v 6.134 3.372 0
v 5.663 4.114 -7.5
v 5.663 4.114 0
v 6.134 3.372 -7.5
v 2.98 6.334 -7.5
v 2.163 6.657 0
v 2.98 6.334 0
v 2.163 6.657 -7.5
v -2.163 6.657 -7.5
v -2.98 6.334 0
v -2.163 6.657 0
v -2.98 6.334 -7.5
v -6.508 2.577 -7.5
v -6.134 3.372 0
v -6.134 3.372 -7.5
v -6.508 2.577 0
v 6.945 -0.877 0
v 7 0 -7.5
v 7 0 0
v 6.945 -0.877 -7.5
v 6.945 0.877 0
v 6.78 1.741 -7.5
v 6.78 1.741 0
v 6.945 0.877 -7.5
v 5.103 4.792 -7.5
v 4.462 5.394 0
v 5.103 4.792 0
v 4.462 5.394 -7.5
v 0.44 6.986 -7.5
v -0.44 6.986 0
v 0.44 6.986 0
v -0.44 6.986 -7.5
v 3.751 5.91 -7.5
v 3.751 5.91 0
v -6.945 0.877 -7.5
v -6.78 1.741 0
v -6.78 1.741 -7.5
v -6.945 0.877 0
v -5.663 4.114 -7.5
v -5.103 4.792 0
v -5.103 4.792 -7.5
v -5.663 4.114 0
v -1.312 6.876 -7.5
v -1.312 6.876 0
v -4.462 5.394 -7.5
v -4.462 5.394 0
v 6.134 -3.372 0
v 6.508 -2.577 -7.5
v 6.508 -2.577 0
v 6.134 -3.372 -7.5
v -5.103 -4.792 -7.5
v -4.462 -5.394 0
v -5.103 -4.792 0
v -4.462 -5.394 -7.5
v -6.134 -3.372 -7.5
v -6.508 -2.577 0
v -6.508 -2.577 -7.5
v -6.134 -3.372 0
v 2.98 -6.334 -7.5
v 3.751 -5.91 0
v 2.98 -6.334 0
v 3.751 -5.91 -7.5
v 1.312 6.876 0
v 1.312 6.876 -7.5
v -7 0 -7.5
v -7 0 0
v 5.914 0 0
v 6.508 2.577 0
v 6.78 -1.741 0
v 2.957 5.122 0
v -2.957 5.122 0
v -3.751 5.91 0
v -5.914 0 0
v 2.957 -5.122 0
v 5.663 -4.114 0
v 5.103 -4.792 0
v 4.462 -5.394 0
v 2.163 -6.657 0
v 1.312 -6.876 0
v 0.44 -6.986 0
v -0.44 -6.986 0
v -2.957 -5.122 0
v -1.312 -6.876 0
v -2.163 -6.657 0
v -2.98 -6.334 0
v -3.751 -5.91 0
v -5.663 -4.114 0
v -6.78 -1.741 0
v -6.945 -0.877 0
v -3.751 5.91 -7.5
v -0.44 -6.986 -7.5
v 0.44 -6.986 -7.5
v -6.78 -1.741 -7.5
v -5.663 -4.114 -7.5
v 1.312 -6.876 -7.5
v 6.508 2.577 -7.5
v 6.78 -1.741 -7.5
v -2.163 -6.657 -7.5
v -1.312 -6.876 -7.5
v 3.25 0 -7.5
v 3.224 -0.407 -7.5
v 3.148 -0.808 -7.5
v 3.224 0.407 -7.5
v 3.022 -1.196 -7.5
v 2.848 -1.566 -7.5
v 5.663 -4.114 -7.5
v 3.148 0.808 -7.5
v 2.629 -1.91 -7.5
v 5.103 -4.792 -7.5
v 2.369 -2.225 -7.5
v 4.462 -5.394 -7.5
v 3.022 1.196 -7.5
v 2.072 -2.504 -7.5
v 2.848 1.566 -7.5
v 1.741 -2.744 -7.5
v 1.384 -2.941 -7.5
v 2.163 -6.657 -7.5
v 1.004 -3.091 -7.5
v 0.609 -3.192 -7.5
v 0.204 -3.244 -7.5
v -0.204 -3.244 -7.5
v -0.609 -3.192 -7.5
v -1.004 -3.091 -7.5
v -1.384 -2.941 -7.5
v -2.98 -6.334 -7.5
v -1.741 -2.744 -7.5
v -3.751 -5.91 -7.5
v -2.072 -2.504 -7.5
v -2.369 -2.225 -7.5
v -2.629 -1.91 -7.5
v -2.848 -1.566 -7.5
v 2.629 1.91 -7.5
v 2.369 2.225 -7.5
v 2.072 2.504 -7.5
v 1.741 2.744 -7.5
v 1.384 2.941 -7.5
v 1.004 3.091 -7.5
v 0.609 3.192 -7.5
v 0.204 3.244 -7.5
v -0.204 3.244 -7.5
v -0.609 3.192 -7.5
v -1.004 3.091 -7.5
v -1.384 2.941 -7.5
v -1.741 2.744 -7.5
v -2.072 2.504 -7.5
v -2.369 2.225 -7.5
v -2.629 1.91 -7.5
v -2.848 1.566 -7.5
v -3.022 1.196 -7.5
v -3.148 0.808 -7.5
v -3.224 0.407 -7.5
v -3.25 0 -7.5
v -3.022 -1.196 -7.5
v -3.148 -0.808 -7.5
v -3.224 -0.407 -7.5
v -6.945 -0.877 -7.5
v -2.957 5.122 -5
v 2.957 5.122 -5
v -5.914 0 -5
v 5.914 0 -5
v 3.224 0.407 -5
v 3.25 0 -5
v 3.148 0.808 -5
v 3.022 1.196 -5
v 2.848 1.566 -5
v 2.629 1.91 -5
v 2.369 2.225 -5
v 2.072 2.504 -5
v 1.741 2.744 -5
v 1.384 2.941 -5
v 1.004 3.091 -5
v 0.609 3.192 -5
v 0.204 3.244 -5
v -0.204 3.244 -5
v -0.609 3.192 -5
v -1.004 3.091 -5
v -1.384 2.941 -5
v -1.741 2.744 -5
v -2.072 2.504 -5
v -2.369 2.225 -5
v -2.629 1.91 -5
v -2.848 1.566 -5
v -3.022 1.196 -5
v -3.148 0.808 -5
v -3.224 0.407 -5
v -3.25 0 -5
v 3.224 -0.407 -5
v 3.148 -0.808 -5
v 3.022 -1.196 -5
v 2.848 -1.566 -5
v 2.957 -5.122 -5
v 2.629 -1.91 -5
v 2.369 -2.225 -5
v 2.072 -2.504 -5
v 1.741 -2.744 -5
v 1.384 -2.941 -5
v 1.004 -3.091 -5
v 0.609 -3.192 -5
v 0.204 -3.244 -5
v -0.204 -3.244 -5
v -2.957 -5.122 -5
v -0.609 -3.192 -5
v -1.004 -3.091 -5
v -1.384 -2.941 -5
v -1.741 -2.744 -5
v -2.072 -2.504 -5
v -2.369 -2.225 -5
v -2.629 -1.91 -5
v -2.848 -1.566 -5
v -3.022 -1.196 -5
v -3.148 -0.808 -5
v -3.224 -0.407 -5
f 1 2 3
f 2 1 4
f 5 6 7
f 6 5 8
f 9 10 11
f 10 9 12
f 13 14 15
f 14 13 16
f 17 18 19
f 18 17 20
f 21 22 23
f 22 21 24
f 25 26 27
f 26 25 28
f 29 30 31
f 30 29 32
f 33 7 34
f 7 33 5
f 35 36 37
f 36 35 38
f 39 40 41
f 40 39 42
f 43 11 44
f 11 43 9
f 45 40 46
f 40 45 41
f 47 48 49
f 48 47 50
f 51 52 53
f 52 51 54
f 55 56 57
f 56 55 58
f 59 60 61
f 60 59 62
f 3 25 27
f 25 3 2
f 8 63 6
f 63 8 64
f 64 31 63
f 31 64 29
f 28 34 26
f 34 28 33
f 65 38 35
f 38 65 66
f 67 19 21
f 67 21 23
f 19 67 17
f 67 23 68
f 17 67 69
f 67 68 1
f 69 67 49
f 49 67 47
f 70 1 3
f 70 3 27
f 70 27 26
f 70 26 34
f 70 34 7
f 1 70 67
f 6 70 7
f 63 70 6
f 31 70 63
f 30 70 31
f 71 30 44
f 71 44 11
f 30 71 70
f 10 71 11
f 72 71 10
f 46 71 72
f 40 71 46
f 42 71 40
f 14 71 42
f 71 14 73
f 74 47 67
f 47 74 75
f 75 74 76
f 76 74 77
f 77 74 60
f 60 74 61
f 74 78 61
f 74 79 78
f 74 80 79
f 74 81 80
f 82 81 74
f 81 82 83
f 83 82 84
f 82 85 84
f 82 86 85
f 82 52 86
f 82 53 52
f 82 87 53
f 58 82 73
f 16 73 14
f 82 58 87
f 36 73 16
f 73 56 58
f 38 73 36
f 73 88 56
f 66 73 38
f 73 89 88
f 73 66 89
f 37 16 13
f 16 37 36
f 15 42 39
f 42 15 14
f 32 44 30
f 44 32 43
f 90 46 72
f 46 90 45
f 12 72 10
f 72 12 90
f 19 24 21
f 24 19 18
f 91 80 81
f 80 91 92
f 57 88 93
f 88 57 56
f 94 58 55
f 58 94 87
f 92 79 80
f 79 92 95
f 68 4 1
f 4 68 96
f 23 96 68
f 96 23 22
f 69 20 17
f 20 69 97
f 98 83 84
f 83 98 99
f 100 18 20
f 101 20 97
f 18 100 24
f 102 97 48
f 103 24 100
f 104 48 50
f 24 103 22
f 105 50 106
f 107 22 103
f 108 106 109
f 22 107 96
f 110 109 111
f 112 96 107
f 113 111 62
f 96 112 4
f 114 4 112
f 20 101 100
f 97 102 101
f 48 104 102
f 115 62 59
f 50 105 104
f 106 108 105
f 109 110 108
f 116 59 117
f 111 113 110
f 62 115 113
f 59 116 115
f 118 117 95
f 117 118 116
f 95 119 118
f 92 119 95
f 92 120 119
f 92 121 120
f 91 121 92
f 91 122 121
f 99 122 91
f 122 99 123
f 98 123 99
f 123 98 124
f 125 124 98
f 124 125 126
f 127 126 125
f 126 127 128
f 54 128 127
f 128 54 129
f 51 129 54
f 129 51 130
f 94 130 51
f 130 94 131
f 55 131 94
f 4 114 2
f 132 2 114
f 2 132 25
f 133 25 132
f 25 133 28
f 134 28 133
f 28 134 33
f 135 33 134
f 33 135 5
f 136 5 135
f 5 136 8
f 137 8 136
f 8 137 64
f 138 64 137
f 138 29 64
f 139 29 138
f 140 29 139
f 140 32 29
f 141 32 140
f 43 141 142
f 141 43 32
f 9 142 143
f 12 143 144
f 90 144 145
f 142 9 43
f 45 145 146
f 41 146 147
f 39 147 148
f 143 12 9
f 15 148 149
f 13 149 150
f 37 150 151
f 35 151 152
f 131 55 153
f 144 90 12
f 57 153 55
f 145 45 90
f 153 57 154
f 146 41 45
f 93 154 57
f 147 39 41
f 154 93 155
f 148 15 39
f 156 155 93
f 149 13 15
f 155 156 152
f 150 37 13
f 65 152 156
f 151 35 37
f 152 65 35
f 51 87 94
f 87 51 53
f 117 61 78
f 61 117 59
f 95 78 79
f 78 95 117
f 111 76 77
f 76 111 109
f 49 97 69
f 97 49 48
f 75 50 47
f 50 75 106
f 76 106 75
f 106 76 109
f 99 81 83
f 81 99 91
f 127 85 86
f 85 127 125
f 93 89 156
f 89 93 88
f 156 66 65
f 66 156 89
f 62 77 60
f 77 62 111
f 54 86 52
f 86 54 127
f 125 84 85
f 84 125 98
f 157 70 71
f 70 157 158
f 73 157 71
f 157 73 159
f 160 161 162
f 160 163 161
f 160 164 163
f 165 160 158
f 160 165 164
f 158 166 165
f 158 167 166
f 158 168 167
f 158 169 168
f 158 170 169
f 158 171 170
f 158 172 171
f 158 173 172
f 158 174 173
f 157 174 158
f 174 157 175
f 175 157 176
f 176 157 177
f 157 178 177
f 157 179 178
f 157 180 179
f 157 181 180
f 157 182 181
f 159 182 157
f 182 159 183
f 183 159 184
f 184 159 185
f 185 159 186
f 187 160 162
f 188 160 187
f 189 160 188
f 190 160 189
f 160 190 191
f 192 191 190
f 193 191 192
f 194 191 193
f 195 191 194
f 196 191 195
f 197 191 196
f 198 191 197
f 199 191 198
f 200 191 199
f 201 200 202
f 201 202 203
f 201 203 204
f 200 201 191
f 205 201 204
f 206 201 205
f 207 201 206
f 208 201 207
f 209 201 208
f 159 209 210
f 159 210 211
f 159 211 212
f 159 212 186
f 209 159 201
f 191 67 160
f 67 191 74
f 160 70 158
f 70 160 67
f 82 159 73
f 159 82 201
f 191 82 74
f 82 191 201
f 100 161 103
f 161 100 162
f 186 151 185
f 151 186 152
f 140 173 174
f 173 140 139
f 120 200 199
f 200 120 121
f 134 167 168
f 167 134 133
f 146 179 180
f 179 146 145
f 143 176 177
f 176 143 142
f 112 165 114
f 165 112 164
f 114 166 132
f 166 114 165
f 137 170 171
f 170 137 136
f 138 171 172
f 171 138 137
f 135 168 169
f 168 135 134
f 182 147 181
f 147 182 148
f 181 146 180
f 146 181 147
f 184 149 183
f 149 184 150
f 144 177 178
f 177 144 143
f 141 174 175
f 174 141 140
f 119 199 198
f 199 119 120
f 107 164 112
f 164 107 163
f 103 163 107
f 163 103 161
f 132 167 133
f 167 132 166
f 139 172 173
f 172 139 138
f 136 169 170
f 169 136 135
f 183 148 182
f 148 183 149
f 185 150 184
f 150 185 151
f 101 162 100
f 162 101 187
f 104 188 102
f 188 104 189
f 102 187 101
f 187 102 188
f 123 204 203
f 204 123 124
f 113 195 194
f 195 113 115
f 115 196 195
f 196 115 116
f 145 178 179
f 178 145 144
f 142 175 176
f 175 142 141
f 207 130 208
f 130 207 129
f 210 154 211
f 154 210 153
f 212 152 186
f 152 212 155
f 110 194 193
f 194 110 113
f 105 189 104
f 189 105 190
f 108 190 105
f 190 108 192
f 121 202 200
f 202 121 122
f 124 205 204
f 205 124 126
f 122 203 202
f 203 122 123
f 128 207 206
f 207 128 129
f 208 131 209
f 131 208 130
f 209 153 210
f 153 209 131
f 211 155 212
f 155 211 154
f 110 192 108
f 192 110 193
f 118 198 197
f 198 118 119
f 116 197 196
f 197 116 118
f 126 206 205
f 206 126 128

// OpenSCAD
$fn = 50;

difference() {
	union() {
		translate(v = [0, 0, -7.5]) {
			cylinder(h = 7.5, r = 7.0);
		}
		#translate(v = [0, 0, -9.0]) {
			cylinder(h = 9, r = 2.875);
		}
	}
	union() {
		translate(v = [0, 0, 0]) {
			rotate(a = [0, 0, 0]) {
				difference() {
					union() {
						translate(v = [0, 0, -5]) {
							linear_extrude(height = 5) {
								polygon(points = [[5.914249999999999, 0.0], [2.957125, 5.1218907443321156], [-2.9571249999999982, 5.1218907443321156], [-5.914249999999999, 7.242867331857232e-16], [-2.9571250000000022, -5.121890744332115], [2.9571249999999956, -5.121890744332118]]);
							}
						}
					}
					union();
				}
			}
		}
		#translate(v = [0, 0, -100.0]) {
			cylinder(h = 200, r = 3.25);
		}
	}
}
